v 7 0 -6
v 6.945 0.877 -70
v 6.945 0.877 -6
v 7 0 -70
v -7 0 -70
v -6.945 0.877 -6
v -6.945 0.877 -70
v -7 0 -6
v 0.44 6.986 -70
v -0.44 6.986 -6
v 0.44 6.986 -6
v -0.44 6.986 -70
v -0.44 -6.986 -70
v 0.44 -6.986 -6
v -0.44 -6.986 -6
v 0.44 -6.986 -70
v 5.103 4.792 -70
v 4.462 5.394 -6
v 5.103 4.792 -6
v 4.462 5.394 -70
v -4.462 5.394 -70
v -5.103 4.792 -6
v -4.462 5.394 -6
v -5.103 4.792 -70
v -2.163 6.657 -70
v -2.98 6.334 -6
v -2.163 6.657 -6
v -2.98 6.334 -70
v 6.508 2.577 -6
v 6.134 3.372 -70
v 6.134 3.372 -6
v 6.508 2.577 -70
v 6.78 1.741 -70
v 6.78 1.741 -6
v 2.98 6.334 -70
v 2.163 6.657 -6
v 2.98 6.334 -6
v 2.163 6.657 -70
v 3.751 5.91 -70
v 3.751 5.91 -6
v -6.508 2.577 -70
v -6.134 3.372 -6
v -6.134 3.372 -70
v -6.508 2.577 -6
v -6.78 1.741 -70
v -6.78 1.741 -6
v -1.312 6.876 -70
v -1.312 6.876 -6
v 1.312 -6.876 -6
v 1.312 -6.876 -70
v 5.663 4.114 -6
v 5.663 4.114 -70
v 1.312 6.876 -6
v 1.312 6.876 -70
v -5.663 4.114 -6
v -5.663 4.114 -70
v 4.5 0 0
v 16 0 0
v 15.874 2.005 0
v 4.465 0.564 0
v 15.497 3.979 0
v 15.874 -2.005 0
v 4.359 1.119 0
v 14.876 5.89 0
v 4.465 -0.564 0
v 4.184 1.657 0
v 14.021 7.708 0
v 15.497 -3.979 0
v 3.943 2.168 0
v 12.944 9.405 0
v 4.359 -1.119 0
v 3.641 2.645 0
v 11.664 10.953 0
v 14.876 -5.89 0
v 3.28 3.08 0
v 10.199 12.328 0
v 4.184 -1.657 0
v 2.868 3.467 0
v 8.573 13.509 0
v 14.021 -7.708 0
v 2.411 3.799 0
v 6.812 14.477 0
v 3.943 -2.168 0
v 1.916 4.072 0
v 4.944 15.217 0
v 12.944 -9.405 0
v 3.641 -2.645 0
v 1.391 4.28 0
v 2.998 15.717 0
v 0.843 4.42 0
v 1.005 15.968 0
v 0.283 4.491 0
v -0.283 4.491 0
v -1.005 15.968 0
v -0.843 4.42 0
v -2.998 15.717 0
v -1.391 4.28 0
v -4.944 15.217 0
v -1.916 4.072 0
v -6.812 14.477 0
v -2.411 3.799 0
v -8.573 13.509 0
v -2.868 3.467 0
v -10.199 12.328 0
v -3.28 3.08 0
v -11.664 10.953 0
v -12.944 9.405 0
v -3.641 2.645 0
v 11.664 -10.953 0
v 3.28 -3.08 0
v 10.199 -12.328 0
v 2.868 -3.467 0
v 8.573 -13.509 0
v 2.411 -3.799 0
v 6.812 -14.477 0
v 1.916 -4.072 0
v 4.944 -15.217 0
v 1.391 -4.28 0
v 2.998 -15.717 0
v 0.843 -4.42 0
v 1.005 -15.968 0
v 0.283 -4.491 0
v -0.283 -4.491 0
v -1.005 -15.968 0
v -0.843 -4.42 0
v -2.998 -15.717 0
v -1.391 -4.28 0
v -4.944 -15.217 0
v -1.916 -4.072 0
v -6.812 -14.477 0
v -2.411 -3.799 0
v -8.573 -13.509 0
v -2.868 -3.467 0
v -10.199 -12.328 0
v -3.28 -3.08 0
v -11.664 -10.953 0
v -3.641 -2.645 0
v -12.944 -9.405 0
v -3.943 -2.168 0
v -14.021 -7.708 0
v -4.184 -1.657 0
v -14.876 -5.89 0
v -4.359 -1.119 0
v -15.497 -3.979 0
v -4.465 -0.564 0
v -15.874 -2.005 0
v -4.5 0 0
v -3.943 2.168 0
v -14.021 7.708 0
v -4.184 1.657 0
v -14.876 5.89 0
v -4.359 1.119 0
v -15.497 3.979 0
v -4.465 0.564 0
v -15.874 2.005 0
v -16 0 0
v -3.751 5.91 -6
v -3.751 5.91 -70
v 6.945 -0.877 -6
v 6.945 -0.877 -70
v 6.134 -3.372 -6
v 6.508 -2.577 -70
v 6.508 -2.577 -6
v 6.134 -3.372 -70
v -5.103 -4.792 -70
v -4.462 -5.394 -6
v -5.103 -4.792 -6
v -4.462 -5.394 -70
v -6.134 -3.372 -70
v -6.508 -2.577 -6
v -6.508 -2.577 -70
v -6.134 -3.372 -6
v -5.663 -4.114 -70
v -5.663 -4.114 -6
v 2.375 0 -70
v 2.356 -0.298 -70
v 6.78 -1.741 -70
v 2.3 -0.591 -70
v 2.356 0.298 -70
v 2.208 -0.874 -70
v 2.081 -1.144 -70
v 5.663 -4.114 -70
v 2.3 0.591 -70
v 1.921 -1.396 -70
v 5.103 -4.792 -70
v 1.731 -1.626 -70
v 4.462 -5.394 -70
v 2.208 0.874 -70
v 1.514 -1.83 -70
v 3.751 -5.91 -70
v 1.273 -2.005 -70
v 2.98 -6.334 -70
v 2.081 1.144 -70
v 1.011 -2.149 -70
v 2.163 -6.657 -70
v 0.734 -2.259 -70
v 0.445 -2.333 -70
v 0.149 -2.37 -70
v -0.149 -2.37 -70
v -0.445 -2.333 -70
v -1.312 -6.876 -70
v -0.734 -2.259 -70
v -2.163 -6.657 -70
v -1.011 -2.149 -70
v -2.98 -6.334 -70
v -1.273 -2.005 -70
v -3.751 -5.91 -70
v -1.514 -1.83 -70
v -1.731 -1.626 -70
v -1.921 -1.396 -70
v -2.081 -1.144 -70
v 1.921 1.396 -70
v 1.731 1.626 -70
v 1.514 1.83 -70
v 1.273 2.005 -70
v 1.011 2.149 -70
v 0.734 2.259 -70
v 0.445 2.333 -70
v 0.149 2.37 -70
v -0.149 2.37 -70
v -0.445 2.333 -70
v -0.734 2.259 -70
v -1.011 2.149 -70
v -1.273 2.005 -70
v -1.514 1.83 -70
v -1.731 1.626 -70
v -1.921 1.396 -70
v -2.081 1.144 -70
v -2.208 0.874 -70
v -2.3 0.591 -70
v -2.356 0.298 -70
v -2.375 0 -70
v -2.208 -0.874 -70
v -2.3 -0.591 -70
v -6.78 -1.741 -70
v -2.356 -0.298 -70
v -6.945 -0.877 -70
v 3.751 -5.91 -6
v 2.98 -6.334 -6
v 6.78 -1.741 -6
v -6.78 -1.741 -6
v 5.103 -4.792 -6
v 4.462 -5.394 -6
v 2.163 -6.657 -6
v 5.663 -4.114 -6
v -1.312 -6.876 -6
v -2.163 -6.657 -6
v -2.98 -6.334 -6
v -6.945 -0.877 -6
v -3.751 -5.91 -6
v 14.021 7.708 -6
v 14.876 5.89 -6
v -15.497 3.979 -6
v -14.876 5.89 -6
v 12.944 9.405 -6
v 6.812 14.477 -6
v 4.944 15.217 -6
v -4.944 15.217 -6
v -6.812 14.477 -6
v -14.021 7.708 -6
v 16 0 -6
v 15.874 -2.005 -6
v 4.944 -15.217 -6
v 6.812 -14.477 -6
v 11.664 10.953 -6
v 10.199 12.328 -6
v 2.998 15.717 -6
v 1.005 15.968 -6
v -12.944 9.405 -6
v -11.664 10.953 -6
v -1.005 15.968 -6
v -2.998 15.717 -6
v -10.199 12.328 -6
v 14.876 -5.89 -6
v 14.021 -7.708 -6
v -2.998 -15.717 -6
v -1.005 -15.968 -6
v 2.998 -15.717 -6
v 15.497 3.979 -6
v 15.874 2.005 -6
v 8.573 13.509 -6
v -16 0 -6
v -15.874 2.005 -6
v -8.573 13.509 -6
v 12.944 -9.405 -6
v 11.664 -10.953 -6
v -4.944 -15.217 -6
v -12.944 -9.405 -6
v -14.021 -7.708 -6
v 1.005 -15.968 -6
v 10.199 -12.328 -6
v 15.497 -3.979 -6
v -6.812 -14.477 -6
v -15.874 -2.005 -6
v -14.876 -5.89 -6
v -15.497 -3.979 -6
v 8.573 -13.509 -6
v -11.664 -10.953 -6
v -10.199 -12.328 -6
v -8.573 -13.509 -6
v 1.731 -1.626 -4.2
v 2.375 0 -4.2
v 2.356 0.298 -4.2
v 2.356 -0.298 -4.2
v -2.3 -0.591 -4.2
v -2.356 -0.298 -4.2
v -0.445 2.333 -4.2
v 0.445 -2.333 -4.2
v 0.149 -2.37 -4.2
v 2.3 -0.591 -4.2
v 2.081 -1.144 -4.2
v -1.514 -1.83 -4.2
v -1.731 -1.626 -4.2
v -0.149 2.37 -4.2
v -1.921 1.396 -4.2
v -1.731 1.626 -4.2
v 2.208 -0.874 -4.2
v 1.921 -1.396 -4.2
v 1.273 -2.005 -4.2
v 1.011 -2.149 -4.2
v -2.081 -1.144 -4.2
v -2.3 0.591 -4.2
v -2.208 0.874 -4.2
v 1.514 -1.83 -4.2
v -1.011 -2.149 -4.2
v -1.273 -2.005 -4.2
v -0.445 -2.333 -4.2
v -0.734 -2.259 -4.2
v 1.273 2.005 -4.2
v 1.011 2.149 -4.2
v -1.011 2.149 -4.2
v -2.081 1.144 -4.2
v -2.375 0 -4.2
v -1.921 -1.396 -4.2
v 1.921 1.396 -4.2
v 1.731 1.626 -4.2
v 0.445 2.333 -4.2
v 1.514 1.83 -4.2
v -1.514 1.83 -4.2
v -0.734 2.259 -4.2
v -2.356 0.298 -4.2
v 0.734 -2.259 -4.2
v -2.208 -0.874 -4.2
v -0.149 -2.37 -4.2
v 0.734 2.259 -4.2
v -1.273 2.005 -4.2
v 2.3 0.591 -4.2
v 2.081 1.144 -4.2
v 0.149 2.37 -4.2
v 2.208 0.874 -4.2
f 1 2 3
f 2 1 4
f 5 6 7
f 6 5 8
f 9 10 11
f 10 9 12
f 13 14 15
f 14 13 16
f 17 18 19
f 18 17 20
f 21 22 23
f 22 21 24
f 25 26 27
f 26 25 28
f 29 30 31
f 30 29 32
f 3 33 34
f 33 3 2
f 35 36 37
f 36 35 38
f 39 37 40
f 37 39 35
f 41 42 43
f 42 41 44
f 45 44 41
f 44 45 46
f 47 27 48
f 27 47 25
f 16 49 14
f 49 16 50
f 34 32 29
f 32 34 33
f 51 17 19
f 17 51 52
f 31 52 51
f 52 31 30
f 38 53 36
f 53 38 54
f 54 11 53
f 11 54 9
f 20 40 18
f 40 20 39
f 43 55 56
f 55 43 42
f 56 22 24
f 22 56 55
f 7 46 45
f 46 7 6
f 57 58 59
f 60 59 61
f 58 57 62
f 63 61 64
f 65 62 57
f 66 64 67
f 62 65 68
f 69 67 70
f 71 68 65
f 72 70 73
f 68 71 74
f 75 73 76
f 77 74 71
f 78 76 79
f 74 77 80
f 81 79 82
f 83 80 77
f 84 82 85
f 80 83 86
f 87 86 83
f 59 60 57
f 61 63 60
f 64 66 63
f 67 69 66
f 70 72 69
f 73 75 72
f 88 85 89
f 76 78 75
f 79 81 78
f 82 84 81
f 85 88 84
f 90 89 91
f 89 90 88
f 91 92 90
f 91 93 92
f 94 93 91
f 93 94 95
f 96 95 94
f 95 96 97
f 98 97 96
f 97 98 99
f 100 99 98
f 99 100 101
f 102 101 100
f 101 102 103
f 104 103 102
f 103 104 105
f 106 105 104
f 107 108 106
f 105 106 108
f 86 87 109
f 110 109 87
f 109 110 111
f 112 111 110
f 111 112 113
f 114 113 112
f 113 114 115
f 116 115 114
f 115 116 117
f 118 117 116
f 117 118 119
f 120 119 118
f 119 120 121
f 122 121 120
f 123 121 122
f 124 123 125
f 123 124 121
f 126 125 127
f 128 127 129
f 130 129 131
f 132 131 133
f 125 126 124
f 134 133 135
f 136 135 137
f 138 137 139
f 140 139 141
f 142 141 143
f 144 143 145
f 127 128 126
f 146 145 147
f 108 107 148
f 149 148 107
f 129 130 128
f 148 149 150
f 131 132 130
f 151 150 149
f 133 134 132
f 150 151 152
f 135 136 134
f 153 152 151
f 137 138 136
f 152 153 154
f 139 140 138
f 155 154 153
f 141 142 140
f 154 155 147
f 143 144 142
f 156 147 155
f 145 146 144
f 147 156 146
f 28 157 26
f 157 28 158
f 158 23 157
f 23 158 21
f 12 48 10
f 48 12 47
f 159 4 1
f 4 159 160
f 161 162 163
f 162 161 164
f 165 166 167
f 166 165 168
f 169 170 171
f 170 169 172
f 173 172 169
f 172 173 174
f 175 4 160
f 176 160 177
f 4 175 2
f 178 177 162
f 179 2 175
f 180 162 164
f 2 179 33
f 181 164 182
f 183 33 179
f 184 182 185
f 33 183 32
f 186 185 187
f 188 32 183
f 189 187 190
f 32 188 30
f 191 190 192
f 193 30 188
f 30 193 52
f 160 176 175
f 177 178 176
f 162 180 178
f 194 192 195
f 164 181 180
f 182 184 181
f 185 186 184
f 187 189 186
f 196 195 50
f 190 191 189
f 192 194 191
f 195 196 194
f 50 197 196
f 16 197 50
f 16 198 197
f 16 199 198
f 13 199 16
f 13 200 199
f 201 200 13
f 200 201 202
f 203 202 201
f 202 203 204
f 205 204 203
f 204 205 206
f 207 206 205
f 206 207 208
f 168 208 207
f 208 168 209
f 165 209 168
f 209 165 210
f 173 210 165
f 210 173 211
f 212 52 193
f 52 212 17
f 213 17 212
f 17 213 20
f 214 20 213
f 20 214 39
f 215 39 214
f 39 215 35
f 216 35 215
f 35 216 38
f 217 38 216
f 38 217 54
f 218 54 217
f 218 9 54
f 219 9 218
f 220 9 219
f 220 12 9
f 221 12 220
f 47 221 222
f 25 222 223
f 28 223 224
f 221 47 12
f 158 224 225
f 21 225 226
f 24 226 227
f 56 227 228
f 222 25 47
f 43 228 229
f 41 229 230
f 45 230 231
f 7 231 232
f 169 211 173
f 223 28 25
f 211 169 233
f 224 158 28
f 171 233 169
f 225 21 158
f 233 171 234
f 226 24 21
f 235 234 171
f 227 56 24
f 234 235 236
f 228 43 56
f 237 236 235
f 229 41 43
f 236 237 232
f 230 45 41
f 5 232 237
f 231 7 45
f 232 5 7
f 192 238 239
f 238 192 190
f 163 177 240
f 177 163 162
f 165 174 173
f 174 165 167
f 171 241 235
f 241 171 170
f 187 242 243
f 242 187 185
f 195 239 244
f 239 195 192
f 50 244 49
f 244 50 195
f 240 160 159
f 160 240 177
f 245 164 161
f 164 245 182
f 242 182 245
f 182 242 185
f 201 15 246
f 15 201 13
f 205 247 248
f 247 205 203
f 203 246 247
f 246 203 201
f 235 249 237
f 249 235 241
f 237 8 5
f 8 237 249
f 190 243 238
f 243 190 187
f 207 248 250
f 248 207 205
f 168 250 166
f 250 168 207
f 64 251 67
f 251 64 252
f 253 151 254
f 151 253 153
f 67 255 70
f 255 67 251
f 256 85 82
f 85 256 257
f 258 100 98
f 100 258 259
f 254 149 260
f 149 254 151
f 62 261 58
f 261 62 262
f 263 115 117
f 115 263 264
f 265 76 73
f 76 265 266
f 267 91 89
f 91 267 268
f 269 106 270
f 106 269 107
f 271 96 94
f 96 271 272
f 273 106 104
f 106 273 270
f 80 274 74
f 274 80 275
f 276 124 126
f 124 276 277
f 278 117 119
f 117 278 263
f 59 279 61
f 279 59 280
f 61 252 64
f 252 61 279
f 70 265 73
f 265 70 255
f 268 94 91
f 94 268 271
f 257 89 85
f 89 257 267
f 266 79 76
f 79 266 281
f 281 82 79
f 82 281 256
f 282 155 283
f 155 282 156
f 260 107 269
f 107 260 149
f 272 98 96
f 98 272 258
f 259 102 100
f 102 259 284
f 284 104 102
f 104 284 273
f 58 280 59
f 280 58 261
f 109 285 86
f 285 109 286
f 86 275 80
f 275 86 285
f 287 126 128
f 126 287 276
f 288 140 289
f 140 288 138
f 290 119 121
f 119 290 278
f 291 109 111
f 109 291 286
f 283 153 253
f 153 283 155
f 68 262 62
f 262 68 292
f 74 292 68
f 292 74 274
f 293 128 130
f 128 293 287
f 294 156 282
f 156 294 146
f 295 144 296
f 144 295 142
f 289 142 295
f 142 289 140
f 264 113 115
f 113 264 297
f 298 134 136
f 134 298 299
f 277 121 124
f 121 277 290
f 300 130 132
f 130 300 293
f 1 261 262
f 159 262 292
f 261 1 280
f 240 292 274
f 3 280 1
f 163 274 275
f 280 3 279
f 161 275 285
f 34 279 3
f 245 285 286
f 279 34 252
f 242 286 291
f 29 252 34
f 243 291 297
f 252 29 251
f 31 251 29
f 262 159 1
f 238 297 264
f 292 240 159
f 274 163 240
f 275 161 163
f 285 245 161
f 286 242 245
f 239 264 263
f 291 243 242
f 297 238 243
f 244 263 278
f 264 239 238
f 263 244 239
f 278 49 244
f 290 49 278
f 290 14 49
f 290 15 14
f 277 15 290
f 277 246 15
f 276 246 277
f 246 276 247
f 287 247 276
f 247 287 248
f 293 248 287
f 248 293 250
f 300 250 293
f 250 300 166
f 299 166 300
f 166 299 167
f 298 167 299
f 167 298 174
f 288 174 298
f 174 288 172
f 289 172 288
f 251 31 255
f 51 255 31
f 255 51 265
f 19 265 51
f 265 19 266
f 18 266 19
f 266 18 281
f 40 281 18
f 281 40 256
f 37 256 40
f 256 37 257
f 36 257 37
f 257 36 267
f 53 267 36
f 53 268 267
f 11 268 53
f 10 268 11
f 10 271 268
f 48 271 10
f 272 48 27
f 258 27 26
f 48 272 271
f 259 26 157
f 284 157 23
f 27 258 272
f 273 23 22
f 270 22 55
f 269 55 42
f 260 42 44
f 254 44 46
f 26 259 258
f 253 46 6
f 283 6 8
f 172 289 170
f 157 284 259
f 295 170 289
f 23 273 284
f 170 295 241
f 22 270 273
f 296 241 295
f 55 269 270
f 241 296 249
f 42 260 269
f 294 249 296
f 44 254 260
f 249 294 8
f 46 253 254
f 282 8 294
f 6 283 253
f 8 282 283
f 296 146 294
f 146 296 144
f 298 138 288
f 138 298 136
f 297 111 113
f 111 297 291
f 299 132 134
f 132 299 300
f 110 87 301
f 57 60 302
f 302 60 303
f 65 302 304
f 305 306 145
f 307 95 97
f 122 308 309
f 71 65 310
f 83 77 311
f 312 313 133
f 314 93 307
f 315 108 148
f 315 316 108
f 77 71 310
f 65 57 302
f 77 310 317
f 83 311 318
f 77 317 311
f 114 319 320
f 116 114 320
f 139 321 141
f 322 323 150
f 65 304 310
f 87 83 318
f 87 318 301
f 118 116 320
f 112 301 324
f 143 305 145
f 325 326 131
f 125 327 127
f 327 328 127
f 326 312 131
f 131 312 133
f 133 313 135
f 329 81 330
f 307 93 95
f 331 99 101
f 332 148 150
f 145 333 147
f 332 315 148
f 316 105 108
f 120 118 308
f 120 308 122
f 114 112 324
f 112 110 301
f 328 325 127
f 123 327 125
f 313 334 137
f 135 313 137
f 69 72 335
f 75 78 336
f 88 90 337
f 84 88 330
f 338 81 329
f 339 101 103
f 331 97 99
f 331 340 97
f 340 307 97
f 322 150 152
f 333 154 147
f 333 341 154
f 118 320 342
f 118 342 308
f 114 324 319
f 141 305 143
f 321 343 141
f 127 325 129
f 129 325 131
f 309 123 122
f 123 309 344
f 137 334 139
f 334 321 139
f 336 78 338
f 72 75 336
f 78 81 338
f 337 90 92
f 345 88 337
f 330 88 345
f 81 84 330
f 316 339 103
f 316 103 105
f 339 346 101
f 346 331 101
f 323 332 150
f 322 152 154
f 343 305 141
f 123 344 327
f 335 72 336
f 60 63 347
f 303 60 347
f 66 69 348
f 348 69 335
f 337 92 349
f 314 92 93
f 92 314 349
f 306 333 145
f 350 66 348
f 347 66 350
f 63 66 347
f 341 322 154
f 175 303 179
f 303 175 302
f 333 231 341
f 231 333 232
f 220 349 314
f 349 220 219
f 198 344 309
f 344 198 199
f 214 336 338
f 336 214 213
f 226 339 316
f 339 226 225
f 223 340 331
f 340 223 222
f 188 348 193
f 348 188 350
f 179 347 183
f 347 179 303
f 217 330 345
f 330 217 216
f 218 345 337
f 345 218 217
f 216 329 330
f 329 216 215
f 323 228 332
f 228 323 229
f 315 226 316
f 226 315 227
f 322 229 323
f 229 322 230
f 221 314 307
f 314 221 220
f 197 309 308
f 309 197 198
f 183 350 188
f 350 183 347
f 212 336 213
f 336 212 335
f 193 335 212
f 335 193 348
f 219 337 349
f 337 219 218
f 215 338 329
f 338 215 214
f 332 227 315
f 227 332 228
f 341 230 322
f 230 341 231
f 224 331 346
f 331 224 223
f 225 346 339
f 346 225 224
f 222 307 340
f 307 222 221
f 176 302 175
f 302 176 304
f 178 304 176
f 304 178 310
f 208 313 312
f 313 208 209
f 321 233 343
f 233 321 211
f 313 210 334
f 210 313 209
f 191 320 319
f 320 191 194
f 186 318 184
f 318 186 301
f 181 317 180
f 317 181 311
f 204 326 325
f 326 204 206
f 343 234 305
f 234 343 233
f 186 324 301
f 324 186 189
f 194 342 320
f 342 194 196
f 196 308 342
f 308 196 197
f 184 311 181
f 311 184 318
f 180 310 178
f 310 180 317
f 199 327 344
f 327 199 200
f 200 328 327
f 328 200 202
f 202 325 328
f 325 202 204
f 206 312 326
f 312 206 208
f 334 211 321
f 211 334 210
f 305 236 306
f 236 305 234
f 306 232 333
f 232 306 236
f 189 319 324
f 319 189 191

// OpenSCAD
$fn = 50;


difference() {
	union() {
		translate(v = [0, 0, -70.0000000000]) {
			cylinder(h = 70, r = 7.0000000000);
		}
		translate(v = [0, 0, -6.0000000000]) {
			cylinder(h = 6, r = 16.0000000000);
		}
	}
	union() {
		translate(v = [0, 0, 0]) {
			rotate(a = [0, 0, 0]) {
				difference() {
					union() {
						#translate(v = [0, 0, -70.0000000000]) {
							cylinder(h = 70, r = 2.2500000000);
						}
						#translate(v = [0, 0, -4.2000000000]) {
							cylinder(h = 4.2000000000, r1 = 2.3750000000, r2 = 4.5000000000);
						}
						#translate(v = [0, 0, -70.0000000000]) {
							cylinder(h = 70, r = 2.3750000000);
						}
						#translate(v = [0, 0, -70.0000000000]) {
							cylinder(h = 70, r = 2.2500000000);
						}
					}
					union();
				}
			}
		}
	}
}
